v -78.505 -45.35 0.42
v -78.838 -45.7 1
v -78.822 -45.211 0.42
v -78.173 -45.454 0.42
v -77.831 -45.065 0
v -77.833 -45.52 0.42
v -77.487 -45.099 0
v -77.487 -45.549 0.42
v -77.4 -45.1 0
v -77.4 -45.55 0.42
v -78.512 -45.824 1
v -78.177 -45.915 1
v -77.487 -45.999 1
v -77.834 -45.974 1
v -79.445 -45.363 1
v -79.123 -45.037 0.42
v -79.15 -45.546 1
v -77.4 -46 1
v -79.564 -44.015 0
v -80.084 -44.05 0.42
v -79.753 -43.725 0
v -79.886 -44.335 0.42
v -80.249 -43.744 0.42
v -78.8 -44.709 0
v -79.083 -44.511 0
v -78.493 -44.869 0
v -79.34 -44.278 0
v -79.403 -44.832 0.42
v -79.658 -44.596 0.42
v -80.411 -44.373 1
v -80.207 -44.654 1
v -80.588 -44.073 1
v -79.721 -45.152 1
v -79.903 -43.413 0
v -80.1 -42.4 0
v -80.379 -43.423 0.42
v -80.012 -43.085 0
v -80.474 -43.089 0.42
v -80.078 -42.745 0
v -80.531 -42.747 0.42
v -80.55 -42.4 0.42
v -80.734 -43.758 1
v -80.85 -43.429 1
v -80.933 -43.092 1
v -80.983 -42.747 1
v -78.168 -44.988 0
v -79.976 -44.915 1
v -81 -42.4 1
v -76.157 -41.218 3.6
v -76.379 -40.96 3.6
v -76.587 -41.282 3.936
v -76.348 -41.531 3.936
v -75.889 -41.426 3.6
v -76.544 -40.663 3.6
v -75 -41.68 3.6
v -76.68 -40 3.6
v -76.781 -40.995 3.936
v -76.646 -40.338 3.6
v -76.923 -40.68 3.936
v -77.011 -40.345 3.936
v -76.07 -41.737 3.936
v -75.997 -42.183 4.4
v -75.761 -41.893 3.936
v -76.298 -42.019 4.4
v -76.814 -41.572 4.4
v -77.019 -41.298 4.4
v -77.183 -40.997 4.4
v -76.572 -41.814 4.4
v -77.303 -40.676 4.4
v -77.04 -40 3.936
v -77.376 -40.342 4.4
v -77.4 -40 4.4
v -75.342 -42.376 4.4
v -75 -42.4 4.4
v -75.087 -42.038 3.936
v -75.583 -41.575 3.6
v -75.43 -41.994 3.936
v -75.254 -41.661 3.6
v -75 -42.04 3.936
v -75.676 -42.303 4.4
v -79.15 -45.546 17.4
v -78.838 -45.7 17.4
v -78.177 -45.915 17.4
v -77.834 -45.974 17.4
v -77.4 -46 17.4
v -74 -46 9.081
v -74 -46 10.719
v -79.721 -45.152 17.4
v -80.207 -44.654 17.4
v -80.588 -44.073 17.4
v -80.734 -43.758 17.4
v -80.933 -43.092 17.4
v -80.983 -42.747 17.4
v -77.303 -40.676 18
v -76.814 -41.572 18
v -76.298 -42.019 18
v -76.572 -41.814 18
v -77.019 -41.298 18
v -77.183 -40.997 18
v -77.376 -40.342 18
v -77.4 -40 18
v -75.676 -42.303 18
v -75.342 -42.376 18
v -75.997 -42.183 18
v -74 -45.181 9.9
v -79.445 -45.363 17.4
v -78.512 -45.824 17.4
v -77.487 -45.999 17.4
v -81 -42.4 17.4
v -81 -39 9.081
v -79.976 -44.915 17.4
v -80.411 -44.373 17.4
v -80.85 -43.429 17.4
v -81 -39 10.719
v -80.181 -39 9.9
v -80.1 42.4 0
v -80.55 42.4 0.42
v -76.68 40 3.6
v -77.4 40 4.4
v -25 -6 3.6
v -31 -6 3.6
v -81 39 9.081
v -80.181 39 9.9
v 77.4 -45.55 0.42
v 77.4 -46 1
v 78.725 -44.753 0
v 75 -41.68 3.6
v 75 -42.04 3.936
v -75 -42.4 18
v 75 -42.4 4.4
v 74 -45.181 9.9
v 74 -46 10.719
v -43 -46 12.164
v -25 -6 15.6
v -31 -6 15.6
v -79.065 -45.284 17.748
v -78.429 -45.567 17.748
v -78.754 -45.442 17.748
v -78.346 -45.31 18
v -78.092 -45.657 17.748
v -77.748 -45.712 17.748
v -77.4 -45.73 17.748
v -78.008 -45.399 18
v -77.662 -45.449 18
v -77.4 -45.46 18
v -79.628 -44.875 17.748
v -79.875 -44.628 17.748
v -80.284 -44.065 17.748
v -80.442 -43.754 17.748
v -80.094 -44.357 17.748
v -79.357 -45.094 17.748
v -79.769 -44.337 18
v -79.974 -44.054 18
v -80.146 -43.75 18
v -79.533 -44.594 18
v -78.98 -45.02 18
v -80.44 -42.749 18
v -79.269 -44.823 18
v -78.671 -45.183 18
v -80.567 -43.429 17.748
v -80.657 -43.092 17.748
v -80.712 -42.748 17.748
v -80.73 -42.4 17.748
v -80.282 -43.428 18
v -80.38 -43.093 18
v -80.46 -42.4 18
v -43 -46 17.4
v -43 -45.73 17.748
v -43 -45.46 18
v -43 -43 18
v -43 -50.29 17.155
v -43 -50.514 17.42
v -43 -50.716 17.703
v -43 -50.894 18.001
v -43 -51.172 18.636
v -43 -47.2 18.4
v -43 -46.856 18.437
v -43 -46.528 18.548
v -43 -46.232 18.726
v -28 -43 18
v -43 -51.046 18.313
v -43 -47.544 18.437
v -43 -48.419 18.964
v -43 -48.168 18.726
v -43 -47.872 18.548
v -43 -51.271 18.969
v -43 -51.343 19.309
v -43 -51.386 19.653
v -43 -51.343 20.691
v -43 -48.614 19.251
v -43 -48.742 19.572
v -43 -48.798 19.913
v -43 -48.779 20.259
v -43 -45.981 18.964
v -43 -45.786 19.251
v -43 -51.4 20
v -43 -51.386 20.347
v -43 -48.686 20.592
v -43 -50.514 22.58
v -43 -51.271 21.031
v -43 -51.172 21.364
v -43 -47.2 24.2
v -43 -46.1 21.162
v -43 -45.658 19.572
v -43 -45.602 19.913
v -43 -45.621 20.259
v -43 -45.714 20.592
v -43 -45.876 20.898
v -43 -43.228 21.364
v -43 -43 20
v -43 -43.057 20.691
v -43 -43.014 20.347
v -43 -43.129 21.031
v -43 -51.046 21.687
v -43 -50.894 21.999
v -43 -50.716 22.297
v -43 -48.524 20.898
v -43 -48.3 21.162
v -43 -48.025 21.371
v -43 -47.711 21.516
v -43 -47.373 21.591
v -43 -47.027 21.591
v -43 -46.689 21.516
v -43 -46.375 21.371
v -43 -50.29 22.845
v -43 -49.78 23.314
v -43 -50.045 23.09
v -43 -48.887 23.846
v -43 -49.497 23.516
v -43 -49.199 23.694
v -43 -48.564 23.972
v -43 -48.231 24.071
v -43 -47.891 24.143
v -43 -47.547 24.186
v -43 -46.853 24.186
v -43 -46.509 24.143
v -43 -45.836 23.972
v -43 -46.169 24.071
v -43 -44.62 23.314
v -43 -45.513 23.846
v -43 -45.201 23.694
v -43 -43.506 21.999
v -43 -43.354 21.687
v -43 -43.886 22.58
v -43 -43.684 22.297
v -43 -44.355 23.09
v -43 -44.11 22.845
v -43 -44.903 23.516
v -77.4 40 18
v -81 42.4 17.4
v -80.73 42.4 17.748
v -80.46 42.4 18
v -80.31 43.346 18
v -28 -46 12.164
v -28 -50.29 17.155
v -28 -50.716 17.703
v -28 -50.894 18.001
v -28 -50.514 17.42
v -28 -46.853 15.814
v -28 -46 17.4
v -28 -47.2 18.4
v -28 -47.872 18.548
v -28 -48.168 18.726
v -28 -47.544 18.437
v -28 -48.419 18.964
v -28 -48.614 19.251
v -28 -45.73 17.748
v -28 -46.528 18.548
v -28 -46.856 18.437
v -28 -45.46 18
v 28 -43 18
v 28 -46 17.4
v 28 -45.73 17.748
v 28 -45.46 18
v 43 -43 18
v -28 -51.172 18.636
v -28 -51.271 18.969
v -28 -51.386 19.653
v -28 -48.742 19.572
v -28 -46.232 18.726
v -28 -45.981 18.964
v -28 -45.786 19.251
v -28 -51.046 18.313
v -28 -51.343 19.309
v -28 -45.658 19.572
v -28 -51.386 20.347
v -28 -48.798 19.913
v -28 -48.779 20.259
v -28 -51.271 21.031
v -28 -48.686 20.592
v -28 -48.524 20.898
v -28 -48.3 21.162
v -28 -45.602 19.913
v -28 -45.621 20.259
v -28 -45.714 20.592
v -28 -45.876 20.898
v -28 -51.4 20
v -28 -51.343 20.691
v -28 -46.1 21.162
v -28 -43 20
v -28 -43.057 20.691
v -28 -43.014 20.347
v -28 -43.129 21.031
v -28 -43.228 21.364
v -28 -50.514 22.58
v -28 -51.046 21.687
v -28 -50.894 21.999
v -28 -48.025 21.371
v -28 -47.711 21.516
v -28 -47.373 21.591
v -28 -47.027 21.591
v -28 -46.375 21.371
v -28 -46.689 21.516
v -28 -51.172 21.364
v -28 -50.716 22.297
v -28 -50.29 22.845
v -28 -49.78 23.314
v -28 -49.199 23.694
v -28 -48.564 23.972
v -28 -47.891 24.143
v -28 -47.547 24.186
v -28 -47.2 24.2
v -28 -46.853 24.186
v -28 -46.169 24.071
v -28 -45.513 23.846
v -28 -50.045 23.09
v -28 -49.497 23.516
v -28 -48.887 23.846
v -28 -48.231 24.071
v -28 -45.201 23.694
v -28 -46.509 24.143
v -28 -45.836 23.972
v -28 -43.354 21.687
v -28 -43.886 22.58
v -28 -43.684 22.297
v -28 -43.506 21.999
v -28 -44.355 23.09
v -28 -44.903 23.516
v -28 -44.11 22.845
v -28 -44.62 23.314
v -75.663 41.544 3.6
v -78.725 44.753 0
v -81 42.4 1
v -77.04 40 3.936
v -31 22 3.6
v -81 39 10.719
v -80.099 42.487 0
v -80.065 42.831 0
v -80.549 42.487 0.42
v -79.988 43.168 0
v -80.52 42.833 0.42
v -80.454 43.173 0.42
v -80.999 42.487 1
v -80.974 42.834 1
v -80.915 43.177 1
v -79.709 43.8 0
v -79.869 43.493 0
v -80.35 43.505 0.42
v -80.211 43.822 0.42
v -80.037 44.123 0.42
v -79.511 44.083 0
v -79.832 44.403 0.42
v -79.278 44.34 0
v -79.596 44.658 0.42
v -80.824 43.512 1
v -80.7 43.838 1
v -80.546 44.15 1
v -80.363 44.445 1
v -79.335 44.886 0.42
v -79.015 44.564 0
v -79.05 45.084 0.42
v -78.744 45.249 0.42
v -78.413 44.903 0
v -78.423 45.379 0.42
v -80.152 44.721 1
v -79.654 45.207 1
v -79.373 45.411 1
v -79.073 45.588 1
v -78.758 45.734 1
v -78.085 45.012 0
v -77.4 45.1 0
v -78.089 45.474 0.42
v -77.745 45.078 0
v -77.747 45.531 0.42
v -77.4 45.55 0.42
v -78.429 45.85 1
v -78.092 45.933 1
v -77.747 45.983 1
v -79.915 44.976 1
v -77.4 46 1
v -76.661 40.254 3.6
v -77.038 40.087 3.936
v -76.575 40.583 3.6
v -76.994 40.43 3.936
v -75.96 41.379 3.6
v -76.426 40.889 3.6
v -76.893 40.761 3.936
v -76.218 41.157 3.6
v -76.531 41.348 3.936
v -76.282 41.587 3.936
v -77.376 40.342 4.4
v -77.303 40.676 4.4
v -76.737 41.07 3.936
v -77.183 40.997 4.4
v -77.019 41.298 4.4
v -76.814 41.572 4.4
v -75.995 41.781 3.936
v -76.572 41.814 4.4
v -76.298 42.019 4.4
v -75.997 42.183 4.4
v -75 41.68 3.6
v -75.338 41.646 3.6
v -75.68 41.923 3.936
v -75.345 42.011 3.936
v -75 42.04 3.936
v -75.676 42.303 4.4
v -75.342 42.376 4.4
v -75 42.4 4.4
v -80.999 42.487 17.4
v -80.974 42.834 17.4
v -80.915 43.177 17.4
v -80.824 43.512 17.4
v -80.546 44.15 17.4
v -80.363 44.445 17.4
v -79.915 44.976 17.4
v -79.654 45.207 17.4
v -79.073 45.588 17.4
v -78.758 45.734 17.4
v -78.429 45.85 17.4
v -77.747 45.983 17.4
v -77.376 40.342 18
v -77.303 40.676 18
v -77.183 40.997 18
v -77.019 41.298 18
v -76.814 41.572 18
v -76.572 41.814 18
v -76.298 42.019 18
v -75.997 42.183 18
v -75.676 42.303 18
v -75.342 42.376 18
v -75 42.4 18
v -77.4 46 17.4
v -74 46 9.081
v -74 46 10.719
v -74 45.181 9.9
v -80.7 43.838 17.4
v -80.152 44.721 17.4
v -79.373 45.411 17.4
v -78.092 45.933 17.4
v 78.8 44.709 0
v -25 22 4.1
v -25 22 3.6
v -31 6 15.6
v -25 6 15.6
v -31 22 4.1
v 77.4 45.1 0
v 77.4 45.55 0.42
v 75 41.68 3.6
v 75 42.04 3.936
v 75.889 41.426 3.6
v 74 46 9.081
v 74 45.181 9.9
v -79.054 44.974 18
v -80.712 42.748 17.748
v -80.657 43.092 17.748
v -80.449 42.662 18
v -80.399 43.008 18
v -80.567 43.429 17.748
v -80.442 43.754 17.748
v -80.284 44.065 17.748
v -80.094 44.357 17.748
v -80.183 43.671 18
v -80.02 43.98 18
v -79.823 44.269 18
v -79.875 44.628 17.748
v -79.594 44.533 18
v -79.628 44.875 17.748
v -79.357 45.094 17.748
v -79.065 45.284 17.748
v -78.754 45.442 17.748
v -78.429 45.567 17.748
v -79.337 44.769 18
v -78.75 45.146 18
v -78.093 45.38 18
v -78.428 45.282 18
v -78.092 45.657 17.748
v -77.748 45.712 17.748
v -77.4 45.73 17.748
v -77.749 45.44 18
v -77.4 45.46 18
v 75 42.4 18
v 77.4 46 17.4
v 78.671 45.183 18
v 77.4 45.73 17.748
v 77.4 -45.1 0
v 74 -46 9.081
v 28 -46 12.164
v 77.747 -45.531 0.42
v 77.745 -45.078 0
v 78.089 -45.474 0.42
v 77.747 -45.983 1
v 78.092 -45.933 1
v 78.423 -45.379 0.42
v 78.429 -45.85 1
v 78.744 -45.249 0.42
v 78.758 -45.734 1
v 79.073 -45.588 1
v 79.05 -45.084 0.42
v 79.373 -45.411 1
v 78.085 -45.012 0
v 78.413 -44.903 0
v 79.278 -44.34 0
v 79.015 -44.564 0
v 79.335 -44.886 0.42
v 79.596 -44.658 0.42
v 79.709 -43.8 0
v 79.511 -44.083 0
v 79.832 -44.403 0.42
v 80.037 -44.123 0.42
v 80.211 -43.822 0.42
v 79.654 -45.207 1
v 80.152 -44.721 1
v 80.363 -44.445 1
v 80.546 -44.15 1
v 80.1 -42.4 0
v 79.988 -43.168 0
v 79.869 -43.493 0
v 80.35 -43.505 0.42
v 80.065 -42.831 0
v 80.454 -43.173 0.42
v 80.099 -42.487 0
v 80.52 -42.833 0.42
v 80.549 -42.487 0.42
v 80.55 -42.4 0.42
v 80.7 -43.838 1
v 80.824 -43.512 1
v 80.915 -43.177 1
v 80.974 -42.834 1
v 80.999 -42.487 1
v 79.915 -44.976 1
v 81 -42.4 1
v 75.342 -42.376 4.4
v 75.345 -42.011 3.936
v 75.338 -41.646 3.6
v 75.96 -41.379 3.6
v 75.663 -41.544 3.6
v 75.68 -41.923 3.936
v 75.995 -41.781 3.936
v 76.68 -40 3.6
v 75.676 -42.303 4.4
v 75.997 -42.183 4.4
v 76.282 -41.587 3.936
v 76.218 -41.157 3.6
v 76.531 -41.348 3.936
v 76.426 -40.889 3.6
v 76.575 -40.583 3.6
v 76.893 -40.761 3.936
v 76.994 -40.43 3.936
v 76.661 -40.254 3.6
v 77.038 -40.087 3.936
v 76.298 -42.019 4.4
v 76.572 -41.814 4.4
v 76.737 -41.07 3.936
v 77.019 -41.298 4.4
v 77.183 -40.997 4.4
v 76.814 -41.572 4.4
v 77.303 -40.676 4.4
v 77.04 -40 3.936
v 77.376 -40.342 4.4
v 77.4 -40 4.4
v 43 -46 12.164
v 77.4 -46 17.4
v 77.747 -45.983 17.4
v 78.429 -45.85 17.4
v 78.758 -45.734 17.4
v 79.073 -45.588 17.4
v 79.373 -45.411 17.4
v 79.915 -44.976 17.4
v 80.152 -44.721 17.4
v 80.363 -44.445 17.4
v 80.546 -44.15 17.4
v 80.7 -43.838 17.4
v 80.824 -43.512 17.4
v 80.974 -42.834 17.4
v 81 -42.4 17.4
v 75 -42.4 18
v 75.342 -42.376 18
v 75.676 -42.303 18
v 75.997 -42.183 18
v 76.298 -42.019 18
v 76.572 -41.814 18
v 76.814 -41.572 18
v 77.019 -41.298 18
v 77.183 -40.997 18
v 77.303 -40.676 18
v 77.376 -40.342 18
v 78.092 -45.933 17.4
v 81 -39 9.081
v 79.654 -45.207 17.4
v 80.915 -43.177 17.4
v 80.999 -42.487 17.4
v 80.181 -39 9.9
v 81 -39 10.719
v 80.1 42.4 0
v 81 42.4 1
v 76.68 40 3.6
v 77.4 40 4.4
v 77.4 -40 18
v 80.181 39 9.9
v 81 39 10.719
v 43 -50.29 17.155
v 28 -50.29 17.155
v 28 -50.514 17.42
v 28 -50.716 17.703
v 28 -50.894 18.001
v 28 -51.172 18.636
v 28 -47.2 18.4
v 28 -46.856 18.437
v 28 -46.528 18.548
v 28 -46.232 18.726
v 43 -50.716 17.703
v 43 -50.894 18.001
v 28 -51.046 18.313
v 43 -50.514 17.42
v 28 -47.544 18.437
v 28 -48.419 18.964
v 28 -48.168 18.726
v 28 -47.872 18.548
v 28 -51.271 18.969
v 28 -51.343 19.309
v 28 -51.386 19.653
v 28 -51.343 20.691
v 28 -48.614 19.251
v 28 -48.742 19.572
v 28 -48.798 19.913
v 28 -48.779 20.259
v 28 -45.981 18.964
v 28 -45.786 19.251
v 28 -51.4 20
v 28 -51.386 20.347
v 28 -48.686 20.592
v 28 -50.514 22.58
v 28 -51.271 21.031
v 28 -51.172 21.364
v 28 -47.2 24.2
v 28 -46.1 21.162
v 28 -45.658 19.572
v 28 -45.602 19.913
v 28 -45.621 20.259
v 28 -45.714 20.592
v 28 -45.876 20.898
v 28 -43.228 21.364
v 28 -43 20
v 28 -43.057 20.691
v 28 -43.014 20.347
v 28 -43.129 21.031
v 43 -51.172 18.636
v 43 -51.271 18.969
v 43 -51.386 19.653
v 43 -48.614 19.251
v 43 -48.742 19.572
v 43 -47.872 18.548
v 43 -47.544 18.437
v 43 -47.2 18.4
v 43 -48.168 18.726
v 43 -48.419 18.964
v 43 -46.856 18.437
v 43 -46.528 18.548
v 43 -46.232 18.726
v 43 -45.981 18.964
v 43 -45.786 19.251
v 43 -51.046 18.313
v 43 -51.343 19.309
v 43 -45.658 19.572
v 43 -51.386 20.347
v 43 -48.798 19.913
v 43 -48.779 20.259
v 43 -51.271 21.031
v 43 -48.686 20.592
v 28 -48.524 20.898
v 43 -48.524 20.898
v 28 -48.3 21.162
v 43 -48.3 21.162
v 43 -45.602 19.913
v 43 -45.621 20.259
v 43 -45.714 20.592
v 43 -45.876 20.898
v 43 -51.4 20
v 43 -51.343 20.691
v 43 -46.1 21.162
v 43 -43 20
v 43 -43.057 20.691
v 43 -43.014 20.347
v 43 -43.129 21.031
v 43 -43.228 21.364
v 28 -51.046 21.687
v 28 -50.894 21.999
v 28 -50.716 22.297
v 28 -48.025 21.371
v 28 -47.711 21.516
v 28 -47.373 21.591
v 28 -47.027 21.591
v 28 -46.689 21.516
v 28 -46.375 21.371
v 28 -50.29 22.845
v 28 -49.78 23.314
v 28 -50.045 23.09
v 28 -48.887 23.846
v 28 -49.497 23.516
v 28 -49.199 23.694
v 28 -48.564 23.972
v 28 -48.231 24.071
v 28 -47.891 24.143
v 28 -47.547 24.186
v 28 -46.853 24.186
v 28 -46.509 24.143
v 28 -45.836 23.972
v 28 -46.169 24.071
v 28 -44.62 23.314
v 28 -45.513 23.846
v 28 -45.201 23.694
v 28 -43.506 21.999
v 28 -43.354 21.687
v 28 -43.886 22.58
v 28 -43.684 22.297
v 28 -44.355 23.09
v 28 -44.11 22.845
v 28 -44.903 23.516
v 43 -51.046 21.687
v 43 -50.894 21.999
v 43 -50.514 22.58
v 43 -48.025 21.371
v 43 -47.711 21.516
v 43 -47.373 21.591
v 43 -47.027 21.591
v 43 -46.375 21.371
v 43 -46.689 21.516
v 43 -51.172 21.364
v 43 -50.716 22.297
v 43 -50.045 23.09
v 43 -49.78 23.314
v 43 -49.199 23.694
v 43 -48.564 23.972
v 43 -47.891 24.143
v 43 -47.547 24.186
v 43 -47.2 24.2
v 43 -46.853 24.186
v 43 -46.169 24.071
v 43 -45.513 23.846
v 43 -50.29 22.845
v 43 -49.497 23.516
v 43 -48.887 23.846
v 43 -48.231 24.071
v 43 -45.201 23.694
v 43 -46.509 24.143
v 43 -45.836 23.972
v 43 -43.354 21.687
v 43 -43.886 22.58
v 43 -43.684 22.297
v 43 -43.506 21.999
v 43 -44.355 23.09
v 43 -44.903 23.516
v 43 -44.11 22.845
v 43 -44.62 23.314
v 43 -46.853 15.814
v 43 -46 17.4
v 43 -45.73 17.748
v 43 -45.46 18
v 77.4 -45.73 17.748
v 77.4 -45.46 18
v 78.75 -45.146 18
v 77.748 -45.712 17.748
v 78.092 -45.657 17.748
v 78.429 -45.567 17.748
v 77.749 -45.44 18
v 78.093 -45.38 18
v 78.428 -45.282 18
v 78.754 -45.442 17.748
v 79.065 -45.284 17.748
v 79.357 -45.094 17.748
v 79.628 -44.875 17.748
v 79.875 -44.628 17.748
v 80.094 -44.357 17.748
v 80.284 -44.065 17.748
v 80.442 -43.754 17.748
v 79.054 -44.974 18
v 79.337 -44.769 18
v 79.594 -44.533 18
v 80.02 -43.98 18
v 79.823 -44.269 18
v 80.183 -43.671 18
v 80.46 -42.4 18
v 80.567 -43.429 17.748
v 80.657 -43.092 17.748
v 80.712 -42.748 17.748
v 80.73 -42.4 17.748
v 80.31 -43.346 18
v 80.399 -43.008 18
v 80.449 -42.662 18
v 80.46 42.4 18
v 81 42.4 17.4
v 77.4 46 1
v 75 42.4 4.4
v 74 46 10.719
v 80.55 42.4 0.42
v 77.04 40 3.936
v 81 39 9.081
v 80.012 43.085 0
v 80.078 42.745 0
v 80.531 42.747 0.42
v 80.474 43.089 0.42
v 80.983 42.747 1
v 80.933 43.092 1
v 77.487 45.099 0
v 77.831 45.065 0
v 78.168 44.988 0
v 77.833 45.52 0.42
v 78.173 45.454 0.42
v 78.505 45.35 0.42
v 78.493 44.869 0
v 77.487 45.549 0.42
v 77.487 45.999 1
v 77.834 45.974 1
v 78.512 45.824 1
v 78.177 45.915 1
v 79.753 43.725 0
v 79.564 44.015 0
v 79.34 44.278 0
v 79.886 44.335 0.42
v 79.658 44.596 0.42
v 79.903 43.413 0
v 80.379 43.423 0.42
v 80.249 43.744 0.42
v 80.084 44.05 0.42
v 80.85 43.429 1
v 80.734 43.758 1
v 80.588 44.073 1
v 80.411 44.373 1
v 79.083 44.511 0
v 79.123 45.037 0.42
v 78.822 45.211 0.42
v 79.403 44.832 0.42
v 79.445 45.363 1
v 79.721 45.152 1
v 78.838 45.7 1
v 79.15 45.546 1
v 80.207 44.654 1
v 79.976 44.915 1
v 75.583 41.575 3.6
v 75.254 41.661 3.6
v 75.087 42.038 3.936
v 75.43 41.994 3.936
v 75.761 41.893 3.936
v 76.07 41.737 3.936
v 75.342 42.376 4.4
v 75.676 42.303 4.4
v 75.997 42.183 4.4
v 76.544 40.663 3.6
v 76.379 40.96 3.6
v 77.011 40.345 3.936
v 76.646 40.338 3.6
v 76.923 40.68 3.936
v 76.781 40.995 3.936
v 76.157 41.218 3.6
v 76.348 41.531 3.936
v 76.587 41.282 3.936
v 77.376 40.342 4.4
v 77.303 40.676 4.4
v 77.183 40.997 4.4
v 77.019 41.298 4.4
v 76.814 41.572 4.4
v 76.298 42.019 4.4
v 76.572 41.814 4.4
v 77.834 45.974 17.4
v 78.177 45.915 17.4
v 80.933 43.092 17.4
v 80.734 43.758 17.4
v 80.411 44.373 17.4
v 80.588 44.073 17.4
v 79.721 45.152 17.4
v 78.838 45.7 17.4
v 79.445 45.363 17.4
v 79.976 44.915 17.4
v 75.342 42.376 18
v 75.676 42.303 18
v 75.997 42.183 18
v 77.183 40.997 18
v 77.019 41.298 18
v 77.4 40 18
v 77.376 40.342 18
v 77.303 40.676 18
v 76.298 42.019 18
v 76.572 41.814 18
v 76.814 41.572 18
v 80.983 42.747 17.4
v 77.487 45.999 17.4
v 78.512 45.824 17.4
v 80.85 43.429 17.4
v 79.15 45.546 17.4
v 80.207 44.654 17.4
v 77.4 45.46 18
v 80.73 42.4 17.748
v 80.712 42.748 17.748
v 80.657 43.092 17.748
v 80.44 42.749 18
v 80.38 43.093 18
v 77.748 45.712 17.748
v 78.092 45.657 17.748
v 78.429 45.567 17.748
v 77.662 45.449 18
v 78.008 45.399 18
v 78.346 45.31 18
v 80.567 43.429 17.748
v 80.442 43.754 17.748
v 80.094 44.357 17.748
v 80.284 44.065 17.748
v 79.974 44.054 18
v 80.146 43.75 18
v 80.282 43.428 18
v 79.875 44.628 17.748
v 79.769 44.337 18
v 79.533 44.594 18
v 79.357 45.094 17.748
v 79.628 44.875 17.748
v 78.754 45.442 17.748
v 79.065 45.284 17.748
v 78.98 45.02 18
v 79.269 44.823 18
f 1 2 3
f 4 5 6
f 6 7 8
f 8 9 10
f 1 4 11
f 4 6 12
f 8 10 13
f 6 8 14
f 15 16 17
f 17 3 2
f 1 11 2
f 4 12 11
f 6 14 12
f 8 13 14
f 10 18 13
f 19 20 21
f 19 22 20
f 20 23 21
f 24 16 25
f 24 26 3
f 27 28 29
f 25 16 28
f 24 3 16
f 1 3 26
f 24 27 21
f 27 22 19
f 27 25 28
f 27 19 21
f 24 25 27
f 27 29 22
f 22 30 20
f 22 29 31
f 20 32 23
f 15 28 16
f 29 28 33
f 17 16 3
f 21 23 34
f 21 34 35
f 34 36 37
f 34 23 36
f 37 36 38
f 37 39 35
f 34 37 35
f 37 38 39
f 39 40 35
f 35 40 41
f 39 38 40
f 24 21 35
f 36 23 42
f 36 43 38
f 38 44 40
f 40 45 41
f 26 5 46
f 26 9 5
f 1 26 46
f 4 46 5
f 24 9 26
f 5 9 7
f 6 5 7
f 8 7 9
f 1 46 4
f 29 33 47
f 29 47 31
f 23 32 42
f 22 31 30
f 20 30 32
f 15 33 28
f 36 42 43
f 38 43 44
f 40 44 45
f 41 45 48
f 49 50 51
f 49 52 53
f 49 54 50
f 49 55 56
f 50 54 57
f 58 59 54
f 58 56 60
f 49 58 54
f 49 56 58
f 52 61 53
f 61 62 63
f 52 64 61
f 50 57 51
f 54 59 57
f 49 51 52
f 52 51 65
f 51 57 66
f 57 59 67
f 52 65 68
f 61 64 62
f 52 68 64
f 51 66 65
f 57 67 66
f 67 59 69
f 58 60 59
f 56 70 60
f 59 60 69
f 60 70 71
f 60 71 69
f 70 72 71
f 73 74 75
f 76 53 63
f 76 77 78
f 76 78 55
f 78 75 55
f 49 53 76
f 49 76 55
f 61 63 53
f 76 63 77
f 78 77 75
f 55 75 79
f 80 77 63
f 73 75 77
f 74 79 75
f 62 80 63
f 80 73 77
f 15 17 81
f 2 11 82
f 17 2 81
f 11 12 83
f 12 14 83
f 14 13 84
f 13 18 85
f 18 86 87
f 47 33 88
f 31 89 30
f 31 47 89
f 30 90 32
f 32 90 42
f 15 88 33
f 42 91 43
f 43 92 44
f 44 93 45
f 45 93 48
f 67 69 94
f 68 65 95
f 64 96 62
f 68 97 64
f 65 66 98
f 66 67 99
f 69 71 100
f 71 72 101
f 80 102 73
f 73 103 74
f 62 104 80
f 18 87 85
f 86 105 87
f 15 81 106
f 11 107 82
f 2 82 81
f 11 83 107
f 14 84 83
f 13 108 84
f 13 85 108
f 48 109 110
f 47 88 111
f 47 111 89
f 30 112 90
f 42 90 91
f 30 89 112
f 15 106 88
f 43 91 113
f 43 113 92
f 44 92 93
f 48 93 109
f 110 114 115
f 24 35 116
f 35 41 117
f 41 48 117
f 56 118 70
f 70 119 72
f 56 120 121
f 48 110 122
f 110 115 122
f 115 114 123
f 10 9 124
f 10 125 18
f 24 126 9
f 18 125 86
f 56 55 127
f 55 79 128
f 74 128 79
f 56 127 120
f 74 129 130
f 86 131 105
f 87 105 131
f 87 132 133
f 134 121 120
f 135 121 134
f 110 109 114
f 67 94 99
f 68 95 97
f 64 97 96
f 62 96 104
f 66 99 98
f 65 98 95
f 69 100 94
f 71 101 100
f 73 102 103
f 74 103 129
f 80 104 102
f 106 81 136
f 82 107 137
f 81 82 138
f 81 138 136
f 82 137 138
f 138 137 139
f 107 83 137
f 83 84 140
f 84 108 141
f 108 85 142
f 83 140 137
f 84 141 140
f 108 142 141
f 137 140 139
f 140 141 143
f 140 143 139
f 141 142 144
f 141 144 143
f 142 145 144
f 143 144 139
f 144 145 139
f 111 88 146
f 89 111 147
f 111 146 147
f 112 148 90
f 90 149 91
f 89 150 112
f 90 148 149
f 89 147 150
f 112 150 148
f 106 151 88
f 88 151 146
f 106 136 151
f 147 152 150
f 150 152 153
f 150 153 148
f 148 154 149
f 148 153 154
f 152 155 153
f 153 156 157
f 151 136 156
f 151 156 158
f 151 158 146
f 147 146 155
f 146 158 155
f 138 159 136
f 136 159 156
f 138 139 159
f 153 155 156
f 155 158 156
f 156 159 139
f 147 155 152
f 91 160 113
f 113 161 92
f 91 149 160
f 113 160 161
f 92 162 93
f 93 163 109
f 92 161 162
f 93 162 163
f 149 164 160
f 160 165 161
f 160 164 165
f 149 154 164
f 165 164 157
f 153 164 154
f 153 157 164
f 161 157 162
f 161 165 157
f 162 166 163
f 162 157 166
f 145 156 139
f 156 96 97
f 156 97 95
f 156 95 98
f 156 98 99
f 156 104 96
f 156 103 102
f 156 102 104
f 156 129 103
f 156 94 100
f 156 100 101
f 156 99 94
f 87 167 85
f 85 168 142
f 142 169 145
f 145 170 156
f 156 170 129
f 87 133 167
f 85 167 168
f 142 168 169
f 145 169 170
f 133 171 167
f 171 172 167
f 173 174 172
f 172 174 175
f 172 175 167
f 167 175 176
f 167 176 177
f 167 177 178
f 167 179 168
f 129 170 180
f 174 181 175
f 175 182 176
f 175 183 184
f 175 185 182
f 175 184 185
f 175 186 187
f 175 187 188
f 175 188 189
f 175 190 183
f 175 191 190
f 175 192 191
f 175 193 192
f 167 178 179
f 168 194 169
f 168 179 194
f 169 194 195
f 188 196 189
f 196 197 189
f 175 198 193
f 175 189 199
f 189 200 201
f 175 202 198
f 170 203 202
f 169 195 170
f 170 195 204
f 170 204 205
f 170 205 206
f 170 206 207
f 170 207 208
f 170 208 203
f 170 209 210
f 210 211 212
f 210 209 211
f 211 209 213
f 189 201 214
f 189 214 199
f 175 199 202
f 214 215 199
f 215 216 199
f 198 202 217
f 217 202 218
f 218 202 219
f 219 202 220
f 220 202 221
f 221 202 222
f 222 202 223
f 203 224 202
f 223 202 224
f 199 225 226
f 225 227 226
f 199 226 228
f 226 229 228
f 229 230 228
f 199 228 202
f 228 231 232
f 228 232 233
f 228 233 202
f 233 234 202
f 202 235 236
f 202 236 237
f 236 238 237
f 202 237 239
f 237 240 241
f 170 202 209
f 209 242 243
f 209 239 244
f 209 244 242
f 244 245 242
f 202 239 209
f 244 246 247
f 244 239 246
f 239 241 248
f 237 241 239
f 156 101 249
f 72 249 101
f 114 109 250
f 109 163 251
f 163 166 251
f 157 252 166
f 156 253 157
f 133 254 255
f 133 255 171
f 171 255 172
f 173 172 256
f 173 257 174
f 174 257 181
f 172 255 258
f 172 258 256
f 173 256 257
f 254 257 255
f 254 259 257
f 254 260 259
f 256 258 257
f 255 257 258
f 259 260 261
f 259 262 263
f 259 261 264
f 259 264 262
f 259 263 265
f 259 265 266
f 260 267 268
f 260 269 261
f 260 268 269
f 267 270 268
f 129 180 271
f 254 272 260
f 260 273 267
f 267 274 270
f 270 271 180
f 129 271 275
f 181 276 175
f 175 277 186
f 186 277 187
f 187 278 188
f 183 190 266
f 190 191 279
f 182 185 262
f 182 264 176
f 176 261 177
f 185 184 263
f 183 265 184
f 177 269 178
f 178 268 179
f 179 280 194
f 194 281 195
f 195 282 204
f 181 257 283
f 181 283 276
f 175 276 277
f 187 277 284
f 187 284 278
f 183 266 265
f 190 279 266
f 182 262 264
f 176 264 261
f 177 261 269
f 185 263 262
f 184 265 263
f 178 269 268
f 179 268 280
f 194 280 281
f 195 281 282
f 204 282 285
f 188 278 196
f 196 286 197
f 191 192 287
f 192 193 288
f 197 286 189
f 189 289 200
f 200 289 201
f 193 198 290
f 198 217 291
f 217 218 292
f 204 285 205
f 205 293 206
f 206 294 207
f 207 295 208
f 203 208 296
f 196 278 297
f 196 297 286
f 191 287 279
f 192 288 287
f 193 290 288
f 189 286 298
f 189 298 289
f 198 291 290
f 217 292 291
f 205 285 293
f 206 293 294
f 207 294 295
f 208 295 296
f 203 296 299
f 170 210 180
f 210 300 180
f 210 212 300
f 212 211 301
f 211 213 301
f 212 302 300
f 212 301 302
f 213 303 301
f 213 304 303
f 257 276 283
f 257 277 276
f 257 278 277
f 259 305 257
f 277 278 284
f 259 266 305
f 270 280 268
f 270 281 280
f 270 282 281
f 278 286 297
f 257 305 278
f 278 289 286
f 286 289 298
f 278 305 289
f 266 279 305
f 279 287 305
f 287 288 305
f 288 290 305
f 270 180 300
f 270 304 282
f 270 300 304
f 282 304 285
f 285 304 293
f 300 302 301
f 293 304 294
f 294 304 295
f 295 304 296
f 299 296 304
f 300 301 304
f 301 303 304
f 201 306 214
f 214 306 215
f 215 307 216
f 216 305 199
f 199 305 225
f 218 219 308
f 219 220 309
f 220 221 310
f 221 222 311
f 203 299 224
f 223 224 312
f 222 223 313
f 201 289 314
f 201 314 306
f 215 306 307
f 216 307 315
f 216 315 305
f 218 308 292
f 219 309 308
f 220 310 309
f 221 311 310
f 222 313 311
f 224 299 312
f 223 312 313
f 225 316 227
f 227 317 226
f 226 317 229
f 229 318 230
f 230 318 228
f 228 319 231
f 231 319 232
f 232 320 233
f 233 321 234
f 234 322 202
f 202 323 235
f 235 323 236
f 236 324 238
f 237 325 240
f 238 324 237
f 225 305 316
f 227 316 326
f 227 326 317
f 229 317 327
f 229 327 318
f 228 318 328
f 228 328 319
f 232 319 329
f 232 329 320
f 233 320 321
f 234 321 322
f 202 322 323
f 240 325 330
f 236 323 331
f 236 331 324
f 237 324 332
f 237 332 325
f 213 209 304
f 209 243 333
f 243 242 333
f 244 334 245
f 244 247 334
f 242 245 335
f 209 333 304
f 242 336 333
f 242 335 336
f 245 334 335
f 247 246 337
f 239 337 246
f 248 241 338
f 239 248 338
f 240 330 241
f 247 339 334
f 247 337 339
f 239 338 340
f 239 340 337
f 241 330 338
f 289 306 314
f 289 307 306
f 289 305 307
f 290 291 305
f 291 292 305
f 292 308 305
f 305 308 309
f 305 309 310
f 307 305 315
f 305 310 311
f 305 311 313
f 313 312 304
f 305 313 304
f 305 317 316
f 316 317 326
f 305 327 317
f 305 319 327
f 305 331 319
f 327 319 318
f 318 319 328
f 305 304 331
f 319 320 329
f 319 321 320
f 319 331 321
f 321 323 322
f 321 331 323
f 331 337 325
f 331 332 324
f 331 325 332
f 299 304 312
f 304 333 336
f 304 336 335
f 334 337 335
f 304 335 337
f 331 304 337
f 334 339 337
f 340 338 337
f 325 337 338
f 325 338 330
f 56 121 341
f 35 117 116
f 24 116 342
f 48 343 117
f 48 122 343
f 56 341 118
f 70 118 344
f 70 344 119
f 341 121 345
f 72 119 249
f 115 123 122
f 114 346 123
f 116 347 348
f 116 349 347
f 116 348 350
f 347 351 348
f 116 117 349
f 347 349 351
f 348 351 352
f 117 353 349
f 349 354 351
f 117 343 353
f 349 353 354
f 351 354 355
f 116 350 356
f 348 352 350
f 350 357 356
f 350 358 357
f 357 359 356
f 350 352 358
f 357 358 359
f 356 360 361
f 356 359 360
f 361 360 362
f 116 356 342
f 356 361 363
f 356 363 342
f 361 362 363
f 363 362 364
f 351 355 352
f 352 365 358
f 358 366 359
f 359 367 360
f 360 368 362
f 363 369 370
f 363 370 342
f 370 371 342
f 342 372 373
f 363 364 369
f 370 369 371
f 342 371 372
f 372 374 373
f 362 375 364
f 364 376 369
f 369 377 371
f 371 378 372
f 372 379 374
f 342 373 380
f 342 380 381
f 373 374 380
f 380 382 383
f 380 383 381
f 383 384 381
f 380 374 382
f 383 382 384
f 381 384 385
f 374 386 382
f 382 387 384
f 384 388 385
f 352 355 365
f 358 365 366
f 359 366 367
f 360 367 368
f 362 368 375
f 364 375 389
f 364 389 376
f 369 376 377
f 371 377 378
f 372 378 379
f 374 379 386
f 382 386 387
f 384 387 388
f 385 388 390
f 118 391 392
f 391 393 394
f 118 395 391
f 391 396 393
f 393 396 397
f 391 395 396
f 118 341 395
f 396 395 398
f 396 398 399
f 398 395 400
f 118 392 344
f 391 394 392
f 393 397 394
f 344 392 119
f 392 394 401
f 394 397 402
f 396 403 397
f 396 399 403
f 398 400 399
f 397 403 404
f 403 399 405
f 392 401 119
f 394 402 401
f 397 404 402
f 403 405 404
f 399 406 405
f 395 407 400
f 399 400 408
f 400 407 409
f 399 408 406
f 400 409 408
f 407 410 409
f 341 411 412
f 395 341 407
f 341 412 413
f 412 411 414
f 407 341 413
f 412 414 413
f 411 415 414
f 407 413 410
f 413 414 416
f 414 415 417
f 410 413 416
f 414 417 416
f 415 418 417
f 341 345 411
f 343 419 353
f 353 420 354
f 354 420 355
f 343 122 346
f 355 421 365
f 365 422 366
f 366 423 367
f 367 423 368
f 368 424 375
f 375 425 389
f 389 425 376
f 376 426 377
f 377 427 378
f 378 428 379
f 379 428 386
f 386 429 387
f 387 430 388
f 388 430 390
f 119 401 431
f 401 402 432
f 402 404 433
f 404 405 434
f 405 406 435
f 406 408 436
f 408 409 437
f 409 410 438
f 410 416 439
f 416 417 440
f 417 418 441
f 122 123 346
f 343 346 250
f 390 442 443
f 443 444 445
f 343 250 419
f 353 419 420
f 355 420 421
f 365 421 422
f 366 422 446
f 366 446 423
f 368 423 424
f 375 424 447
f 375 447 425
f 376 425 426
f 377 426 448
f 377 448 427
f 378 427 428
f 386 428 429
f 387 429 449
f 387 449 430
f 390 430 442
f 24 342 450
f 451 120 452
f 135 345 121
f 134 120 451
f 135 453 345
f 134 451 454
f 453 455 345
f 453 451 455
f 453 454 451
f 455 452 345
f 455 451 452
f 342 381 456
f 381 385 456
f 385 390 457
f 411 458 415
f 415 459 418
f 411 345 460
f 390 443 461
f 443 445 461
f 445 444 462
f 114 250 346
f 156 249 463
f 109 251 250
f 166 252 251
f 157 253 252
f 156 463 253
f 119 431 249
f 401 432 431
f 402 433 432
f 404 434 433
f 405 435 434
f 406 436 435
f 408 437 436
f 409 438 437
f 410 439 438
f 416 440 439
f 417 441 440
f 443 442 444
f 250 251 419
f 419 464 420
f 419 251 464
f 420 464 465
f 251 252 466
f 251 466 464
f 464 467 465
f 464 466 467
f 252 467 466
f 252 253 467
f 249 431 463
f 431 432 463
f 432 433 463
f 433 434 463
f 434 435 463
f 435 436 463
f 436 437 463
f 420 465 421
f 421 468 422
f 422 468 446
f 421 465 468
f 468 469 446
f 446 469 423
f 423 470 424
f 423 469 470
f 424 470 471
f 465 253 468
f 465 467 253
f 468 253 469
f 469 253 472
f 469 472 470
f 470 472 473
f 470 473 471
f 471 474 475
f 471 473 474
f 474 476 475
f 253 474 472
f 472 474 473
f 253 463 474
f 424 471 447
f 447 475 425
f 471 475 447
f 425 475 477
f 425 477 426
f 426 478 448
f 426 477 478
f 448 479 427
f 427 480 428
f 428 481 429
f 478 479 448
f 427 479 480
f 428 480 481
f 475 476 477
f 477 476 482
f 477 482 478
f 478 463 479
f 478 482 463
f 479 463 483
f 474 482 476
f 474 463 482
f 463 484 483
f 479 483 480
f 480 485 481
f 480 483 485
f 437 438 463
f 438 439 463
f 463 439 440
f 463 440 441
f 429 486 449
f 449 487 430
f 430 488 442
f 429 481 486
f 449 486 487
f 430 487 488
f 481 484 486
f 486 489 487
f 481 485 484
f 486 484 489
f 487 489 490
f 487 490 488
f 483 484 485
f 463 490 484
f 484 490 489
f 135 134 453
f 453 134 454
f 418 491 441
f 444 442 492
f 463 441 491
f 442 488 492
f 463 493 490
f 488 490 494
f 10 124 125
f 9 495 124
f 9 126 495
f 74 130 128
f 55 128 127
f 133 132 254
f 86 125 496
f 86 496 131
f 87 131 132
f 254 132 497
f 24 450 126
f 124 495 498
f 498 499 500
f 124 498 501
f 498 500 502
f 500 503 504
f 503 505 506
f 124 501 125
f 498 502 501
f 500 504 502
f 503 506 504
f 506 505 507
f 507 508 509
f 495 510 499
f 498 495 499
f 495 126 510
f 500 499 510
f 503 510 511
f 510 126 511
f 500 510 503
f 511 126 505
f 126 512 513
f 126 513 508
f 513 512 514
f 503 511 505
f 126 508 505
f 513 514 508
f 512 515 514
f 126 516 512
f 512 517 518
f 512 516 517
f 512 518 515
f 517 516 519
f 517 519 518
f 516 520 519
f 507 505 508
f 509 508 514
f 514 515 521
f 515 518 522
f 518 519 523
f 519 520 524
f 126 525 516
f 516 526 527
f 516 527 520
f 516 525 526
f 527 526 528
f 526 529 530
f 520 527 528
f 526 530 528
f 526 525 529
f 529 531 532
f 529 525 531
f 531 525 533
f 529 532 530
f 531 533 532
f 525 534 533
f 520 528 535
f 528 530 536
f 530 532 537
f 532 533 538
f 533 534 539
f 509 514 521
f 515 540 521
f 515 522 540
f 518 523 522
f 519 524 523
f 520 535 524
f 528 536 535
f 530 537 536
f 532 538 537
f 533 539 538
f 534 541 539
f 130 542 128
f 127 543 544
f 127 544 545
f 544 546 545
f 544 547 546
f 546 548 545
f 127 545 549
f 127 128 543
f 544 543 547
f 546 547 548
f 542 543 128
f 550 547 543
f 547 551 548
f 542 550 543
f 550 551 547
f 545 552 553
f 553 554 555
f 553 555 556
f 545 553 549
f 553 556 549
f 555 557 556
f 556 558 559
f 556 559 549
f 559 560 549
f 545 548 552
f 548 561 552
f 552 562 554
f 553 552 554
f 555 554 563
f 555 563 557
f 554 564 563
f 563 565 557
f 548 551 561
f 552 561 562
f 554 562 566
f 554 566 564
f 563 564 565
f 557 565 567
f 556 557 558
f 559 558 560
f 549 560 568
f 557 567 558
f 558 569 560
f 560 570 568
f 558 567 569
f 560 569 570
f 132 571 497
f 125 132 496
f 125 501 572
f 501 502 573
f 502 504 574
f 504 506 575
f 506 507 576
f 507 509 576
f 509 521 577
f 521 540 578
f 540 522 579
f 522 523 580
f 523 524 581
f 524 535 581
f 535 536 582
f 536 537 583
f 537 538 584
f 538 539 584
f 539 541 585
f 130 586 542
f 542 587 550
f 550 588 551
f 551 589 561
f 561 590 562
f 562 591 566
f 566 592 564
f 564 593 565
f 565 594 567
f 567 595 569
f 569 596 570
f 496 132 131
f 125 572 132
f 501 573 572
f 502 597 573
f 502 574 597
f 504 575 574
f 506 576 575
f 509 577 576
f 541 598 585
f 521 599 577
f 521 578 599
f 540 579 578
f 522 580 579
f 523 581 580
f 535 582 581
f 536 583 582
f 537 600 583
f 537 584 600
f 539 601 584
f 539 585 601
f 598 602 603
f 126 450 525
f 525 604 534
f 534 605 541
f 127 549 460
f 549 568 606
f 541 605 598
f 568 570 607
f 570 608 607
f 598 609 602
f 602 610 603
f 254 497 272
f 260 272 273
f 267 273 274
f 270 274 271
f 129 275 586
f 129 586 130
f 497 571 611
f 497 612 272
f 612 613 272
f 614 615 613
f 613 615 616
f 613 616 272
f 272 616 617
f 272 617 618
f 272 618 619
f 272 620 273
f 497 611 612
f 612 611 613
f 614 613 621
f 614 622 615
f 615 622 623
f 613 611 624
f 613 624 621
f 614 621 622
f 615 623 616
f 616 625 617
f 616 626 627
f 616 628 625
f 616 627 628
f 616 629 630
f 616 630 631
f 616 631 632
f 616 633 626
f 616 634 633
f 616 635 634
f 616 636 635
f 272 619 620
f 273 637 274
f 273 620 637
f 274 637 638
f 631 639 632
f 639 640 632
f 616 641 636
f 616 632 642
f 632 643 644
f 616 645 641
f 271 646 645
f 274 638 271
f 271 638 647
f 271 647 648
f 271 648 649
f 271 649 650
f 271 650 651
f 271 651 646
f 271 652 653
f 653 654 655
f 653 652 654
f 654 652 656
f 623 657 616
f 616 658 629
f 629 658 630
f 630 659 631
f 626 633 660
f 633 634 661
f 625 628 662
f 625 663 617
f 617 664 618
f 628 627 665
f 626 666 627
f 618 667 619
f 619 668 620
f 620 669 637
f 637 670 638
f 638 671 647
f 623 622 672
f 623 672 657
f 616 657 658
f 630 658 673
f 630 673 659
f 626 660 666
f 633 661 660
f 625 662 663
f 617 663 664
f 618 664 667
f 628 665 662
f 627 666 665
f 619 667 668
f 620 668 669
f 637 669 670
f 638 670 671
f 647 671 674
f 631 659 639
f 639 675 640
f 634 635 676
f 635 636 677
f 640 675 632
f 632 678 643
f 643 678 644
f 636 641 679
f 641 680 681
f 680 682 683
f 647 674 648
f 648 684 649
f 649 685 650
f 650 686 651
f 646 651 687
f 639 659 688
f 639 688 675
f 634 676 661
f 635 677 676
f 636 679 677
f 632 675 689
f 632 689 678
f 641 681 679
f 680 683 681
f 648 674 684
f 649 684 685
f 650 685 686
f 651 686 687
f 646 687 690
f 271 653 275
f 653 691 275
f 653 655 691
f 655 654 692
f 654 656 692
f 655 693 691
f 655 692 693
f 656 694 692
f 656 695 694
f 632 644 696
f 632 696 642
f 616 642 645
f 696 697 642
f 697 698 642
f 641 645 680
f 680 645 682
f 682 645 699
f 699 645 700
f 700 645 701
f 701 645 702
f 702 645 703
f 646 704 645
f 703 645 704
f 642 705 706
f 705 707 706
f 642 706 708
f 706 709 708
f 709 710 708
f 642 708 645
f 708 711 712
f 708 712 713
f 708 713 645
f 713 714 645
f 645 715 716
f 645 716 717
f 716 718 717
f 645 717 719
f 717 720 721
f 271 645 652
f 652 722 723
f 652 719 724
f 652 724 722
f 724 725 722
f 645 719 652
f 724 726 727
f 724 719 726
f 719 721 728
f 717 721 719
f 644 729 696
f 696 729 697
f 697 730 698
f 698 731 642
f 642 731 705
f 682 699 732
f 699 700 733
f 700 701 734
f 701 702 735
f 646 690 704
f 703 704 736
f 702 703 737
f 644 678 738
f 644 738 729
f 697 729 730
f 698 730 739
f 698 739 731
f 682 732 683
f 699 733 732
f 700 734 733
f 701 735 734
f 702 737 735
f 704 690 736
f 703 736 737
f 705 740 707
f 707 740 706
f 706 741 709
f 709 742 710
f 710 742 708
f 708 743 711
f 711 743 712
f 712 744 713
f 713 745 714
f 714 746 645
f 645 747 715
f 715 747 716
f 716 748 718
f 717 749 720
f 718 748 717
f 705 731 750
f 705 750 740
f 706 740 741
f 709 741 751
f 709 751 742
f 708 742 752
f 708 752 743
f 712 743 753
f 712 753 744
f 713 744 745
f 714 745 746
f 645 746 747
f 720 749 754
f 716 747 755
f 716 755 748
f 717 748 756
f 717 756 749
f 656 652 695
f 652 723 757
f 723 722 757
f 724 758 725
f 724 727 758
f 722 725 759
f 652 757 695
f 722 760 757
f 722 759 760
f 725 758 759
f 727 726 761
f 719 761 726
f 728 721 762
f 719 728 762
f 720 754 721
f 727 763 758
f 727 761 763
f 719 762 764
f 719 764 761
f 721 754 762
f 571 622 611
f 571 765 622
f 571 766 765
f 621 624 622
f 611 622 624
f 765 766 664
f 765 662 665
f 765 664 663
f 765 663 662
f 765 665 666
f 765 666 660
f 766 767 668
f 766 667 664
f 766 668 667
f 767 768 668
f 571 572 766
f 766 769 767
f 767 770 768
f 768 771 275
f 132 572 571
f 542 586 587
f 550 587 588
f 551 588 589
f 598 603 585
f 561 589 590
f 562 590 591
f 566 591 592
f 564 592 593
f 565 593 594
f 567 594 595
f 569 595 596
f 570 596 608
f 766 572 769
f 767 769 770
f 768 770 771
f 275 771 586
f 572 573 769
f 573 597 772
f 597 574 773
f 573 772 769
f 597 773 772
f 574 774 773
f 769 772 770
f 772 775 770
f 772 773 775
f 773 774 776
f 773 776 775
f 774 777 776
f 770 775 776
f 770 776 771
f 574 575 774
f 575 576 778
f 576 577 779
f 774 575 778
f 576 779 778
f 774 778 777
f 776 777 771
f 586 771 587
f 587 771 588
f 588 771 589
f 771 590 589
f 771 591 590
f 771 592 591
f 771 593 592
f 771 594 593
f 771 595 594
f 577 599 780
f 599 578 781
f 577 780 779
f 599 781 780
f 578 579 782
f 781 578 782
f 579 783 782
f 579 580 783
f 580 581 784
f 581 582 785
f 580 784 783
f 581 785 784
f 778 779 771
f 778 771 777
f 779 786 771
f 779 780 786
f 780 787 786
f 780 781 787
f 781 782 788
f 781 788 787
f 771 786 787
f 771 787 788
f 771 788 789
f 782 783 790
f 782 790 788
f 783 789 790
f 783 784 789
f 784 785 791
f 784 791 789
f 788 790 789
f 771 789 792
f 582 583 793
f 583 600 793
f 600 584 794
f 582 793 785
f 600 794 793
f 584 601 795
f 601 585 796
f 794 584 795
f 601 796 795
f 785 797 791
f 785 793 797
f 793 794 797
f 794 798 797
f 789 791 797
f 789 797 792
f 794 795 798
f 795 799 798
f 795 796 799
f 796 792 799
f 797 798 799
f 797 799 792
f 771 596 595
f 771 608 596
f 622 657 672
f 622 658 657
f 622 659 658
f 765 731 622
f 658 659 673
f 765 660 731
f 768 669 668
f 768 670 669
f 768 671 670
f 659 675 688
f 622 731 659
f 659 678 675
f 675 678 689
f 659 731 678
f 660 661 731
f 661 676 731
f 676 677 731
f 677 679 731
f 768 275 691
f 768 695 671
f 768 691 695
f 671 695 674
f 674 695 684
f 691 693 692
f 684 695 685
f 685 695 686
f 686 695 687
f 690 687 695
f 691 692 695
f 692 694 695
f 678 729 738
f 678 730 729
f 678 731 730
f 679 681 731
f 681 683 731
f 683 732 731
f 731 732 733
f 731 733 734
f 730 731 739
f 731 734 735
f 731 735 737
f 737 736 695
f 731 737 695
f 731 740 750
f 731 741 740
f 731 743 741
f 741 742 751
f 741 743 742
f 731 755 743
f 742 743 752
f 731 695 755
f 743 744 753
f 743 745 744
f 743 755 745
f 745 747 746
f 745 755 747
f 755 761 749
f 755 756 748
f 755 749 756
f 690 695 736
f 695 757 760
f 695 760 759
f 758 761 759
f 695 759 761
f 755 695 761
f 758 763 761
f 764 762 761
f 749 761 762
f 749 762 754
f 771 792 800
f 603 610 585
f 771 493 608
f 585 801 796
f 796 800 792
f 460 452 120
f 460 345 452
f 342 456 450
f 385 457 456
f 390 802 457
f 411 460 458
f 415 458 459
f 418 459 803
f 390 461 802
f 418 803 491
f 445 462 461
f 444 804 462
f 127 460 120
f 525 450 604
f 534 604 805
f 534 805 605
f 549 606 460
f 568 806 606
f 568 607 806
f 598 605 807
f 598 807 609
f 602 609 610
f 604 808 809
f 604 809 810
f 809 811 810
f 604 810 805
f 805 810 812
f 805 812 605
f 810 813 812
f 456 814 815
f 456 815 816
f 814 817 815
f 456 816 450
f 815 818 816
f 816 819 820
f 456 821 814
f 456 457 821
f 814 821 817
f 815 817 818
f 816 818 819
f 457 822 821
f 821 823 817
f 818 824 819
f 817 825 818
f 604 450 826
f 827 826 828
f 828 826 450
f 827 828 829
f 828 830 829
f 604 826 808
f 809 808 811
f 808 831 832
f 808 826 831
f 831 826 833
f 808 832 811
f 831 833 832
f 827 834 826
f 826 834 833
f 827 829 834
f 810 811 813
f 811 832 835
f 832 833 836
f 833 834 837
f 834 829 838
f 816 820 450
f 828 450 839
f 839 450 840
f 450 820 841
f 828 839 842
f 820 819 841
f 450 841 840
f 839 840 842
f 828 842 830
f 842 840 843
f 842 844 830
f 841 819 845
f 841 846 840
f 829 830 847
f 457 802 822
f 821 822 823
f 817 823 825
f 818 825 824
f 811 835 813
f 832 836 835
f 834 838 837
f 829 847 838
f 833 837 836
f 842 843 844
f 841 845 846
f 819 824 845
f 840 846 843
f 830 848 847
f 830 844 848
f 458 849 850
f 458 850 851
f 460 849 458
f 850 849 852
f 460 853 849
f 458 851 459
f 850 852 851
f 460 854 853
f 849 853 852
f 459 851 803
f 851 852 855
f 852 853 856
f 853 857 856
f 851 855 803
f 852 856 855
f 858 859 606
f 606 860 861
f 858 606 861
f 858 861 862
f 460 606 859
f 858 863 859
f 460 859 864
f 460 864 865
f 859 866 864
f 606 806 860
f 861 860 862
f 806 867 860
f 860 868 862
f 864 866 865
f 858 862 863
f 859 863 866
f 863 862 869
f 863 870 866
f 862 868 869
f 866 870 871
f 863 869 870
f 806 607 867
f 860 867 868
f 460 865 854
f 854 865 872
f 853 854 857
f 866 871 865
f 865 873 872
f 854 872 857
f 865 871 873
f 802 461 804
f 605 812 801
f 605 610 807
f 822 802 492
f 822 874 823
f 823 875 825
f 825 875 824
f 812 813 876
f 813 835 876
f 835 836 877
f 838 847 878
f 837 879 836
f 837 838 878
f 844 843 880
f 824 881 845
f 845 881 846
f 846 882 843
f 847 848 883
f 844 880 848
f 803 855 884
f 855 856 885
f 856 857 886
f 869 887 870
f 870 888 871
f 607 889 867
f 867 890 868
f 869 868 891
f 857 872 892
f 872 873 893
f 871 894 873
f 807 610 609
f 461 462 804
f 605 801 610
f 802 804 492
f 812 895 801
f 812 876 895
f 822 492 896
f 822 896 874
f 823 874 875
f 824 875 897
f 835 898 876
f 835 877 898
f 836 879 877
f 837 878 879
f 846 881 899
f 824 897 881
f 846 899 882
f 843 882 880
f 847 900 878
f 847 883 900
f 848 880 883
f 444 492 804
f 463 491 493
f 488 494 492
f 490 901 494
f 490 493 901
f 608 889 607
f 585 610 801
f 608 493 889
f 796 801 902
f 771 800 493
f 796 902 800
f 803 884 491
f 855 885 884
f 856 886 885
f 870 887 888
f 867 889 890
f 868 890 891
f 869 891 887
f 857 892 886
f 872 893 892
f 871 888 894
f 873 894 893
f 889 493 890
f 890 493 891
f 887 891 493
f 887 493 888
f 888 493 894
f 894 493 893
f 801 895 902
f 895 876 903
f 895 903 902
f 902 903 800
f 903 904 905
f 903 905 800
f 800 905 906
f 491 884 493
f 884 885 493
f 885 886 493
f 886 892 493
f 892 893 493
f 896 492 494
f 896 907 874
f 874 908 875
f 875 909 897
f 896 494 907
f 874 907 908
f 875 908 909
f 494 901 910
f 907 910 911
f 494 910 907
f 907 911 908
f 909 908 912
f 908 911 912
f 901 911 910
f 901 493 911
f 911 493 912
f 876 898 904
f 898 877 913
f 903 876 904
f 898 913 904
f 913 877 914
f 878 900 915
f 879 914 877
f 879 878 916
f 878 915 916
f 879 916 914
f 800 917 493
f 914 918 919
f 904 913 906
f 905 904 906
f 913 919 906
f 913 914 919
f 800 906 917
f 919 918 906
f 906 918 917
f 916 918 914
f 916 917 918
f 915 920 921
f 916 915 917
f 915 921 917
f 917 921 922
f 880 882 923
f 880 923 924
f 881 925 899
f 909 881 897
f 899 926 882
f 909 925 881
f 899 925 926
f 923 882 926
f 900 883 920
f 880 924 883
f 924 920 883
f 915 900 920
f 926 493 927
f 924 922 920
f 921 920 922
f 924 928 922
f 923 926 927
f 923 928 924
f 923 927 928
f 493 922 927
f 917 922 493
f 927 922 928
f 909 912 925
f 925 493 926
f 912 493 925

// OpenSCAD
// Hauntology Tabletop Print Kit — Prop #1: Ghost in the Box (Coffered Lid)
// Colour: Leather (#6b4d33)
// Size: 162 W x 92 D x 18 H mm
// Mechanism: Rear hinge barrels mate with chest knuckles; underside cam ramp lifted by servo (0-30 deg)
// Print orientation: Flat on outer lid top (Z = 0 in this file), zero supports.

include <_common.scad>

lid_w = 162.0;
lid_d = 92.0;
lid_h = 18.0;

module prop_01_chest_lid() {
  difference() {
    union() {
      // 1. Main lid shell (printed upside-down: outer top sits on Z = 0, rim rises to Z = lid_h)
      chamfer_box(lid_w, lid_d, lid_h, r = 3.6, ch_bot = 1.0, ch_top = 0.6);

      // 2. Rear hinge barrels (at Y_lid = -(lid_d/2 + 1.2) = -47.2 mm, Z_lid = lid_h + 2.0 = 20.0 mm;
      //    when flipped right-way up via rotate([180,0,0]) onto Z_chest = 70.0, this sits at Y = +47.2, Z = 68.0 mm —
      //    100% coaxial with the chest body's hinge knuckles!)
      for (hx = [-35.5, 35.5]) {
        hull() {
          translate([hx, -(lid_d / 2 + 1.2), lid_h + 2.0])
            rotate([0, 90, 0])
              cylinder(h = 15.0, d = 8.4, center = true);
          translate([hx, -(lid_d / 2 - 2.0), lid_h - 6.0])
            cube([15.0, 2.0, 2.0], center = true);
        }
      }
    }

    // 3. Recessed underside coffer cavity (with 3.2 mm roof and 3.2 mm walls)
    translate([0, 0, 3.6])
      chamfer_box(lid_w - 7.2, lid_d - 7.2, lid_h, r = 2.4, ch_bot = 0.8, ch_top = 0);

    // 4. Plank grooves on front, back and side skirts
    for (sy = [-1, 1])
      translate([0, sy * (lid_d / 2 + 0.1), lid_h * 0.55])
        rotate([45, 0, 0])
          cube([lid_w - 14, 1.3, 1.3], center = true);
    for (sx = [-1, 1])
      translate([sx * (lid_w / 2 + 0.1), 0, lid_h * 0.55])
        rotate([0, 45, 0])
          cube([1.3, lid_d - 14, 1.3], center = true);

    // 5. Hinge pin bores (3.2 mm ID, coaxial with chest body at Z_lid = lid_h + 2.0 = 20.0 mm)
    for (hx = [-35.5, 35.5]) {
      translate([hx, -(lid_d / 2 + 1.2), lid_h + 2.0])
        rotate([0, 90, 0])
          cylinder(h = 18.0, d = 3.2, center = true);
    }
  }

  // 6. Underside Servo Cam Follower Ramp (at X = -28, Y_lid = -6.0 -> Y_world = +6.0 when flipped)
  translate([-28.0, -6.0, 3.6]) {
    hull() {
      translate([0, 14.0, 0]) cube([6.0, 28.0, 1.0], center = true);
      translate([0, 6.0, 11.5]) cube([6.0, 12.0, 1.0], center = true);
    }
  }
}

color(col_leather) prop_01_chest_lid();
